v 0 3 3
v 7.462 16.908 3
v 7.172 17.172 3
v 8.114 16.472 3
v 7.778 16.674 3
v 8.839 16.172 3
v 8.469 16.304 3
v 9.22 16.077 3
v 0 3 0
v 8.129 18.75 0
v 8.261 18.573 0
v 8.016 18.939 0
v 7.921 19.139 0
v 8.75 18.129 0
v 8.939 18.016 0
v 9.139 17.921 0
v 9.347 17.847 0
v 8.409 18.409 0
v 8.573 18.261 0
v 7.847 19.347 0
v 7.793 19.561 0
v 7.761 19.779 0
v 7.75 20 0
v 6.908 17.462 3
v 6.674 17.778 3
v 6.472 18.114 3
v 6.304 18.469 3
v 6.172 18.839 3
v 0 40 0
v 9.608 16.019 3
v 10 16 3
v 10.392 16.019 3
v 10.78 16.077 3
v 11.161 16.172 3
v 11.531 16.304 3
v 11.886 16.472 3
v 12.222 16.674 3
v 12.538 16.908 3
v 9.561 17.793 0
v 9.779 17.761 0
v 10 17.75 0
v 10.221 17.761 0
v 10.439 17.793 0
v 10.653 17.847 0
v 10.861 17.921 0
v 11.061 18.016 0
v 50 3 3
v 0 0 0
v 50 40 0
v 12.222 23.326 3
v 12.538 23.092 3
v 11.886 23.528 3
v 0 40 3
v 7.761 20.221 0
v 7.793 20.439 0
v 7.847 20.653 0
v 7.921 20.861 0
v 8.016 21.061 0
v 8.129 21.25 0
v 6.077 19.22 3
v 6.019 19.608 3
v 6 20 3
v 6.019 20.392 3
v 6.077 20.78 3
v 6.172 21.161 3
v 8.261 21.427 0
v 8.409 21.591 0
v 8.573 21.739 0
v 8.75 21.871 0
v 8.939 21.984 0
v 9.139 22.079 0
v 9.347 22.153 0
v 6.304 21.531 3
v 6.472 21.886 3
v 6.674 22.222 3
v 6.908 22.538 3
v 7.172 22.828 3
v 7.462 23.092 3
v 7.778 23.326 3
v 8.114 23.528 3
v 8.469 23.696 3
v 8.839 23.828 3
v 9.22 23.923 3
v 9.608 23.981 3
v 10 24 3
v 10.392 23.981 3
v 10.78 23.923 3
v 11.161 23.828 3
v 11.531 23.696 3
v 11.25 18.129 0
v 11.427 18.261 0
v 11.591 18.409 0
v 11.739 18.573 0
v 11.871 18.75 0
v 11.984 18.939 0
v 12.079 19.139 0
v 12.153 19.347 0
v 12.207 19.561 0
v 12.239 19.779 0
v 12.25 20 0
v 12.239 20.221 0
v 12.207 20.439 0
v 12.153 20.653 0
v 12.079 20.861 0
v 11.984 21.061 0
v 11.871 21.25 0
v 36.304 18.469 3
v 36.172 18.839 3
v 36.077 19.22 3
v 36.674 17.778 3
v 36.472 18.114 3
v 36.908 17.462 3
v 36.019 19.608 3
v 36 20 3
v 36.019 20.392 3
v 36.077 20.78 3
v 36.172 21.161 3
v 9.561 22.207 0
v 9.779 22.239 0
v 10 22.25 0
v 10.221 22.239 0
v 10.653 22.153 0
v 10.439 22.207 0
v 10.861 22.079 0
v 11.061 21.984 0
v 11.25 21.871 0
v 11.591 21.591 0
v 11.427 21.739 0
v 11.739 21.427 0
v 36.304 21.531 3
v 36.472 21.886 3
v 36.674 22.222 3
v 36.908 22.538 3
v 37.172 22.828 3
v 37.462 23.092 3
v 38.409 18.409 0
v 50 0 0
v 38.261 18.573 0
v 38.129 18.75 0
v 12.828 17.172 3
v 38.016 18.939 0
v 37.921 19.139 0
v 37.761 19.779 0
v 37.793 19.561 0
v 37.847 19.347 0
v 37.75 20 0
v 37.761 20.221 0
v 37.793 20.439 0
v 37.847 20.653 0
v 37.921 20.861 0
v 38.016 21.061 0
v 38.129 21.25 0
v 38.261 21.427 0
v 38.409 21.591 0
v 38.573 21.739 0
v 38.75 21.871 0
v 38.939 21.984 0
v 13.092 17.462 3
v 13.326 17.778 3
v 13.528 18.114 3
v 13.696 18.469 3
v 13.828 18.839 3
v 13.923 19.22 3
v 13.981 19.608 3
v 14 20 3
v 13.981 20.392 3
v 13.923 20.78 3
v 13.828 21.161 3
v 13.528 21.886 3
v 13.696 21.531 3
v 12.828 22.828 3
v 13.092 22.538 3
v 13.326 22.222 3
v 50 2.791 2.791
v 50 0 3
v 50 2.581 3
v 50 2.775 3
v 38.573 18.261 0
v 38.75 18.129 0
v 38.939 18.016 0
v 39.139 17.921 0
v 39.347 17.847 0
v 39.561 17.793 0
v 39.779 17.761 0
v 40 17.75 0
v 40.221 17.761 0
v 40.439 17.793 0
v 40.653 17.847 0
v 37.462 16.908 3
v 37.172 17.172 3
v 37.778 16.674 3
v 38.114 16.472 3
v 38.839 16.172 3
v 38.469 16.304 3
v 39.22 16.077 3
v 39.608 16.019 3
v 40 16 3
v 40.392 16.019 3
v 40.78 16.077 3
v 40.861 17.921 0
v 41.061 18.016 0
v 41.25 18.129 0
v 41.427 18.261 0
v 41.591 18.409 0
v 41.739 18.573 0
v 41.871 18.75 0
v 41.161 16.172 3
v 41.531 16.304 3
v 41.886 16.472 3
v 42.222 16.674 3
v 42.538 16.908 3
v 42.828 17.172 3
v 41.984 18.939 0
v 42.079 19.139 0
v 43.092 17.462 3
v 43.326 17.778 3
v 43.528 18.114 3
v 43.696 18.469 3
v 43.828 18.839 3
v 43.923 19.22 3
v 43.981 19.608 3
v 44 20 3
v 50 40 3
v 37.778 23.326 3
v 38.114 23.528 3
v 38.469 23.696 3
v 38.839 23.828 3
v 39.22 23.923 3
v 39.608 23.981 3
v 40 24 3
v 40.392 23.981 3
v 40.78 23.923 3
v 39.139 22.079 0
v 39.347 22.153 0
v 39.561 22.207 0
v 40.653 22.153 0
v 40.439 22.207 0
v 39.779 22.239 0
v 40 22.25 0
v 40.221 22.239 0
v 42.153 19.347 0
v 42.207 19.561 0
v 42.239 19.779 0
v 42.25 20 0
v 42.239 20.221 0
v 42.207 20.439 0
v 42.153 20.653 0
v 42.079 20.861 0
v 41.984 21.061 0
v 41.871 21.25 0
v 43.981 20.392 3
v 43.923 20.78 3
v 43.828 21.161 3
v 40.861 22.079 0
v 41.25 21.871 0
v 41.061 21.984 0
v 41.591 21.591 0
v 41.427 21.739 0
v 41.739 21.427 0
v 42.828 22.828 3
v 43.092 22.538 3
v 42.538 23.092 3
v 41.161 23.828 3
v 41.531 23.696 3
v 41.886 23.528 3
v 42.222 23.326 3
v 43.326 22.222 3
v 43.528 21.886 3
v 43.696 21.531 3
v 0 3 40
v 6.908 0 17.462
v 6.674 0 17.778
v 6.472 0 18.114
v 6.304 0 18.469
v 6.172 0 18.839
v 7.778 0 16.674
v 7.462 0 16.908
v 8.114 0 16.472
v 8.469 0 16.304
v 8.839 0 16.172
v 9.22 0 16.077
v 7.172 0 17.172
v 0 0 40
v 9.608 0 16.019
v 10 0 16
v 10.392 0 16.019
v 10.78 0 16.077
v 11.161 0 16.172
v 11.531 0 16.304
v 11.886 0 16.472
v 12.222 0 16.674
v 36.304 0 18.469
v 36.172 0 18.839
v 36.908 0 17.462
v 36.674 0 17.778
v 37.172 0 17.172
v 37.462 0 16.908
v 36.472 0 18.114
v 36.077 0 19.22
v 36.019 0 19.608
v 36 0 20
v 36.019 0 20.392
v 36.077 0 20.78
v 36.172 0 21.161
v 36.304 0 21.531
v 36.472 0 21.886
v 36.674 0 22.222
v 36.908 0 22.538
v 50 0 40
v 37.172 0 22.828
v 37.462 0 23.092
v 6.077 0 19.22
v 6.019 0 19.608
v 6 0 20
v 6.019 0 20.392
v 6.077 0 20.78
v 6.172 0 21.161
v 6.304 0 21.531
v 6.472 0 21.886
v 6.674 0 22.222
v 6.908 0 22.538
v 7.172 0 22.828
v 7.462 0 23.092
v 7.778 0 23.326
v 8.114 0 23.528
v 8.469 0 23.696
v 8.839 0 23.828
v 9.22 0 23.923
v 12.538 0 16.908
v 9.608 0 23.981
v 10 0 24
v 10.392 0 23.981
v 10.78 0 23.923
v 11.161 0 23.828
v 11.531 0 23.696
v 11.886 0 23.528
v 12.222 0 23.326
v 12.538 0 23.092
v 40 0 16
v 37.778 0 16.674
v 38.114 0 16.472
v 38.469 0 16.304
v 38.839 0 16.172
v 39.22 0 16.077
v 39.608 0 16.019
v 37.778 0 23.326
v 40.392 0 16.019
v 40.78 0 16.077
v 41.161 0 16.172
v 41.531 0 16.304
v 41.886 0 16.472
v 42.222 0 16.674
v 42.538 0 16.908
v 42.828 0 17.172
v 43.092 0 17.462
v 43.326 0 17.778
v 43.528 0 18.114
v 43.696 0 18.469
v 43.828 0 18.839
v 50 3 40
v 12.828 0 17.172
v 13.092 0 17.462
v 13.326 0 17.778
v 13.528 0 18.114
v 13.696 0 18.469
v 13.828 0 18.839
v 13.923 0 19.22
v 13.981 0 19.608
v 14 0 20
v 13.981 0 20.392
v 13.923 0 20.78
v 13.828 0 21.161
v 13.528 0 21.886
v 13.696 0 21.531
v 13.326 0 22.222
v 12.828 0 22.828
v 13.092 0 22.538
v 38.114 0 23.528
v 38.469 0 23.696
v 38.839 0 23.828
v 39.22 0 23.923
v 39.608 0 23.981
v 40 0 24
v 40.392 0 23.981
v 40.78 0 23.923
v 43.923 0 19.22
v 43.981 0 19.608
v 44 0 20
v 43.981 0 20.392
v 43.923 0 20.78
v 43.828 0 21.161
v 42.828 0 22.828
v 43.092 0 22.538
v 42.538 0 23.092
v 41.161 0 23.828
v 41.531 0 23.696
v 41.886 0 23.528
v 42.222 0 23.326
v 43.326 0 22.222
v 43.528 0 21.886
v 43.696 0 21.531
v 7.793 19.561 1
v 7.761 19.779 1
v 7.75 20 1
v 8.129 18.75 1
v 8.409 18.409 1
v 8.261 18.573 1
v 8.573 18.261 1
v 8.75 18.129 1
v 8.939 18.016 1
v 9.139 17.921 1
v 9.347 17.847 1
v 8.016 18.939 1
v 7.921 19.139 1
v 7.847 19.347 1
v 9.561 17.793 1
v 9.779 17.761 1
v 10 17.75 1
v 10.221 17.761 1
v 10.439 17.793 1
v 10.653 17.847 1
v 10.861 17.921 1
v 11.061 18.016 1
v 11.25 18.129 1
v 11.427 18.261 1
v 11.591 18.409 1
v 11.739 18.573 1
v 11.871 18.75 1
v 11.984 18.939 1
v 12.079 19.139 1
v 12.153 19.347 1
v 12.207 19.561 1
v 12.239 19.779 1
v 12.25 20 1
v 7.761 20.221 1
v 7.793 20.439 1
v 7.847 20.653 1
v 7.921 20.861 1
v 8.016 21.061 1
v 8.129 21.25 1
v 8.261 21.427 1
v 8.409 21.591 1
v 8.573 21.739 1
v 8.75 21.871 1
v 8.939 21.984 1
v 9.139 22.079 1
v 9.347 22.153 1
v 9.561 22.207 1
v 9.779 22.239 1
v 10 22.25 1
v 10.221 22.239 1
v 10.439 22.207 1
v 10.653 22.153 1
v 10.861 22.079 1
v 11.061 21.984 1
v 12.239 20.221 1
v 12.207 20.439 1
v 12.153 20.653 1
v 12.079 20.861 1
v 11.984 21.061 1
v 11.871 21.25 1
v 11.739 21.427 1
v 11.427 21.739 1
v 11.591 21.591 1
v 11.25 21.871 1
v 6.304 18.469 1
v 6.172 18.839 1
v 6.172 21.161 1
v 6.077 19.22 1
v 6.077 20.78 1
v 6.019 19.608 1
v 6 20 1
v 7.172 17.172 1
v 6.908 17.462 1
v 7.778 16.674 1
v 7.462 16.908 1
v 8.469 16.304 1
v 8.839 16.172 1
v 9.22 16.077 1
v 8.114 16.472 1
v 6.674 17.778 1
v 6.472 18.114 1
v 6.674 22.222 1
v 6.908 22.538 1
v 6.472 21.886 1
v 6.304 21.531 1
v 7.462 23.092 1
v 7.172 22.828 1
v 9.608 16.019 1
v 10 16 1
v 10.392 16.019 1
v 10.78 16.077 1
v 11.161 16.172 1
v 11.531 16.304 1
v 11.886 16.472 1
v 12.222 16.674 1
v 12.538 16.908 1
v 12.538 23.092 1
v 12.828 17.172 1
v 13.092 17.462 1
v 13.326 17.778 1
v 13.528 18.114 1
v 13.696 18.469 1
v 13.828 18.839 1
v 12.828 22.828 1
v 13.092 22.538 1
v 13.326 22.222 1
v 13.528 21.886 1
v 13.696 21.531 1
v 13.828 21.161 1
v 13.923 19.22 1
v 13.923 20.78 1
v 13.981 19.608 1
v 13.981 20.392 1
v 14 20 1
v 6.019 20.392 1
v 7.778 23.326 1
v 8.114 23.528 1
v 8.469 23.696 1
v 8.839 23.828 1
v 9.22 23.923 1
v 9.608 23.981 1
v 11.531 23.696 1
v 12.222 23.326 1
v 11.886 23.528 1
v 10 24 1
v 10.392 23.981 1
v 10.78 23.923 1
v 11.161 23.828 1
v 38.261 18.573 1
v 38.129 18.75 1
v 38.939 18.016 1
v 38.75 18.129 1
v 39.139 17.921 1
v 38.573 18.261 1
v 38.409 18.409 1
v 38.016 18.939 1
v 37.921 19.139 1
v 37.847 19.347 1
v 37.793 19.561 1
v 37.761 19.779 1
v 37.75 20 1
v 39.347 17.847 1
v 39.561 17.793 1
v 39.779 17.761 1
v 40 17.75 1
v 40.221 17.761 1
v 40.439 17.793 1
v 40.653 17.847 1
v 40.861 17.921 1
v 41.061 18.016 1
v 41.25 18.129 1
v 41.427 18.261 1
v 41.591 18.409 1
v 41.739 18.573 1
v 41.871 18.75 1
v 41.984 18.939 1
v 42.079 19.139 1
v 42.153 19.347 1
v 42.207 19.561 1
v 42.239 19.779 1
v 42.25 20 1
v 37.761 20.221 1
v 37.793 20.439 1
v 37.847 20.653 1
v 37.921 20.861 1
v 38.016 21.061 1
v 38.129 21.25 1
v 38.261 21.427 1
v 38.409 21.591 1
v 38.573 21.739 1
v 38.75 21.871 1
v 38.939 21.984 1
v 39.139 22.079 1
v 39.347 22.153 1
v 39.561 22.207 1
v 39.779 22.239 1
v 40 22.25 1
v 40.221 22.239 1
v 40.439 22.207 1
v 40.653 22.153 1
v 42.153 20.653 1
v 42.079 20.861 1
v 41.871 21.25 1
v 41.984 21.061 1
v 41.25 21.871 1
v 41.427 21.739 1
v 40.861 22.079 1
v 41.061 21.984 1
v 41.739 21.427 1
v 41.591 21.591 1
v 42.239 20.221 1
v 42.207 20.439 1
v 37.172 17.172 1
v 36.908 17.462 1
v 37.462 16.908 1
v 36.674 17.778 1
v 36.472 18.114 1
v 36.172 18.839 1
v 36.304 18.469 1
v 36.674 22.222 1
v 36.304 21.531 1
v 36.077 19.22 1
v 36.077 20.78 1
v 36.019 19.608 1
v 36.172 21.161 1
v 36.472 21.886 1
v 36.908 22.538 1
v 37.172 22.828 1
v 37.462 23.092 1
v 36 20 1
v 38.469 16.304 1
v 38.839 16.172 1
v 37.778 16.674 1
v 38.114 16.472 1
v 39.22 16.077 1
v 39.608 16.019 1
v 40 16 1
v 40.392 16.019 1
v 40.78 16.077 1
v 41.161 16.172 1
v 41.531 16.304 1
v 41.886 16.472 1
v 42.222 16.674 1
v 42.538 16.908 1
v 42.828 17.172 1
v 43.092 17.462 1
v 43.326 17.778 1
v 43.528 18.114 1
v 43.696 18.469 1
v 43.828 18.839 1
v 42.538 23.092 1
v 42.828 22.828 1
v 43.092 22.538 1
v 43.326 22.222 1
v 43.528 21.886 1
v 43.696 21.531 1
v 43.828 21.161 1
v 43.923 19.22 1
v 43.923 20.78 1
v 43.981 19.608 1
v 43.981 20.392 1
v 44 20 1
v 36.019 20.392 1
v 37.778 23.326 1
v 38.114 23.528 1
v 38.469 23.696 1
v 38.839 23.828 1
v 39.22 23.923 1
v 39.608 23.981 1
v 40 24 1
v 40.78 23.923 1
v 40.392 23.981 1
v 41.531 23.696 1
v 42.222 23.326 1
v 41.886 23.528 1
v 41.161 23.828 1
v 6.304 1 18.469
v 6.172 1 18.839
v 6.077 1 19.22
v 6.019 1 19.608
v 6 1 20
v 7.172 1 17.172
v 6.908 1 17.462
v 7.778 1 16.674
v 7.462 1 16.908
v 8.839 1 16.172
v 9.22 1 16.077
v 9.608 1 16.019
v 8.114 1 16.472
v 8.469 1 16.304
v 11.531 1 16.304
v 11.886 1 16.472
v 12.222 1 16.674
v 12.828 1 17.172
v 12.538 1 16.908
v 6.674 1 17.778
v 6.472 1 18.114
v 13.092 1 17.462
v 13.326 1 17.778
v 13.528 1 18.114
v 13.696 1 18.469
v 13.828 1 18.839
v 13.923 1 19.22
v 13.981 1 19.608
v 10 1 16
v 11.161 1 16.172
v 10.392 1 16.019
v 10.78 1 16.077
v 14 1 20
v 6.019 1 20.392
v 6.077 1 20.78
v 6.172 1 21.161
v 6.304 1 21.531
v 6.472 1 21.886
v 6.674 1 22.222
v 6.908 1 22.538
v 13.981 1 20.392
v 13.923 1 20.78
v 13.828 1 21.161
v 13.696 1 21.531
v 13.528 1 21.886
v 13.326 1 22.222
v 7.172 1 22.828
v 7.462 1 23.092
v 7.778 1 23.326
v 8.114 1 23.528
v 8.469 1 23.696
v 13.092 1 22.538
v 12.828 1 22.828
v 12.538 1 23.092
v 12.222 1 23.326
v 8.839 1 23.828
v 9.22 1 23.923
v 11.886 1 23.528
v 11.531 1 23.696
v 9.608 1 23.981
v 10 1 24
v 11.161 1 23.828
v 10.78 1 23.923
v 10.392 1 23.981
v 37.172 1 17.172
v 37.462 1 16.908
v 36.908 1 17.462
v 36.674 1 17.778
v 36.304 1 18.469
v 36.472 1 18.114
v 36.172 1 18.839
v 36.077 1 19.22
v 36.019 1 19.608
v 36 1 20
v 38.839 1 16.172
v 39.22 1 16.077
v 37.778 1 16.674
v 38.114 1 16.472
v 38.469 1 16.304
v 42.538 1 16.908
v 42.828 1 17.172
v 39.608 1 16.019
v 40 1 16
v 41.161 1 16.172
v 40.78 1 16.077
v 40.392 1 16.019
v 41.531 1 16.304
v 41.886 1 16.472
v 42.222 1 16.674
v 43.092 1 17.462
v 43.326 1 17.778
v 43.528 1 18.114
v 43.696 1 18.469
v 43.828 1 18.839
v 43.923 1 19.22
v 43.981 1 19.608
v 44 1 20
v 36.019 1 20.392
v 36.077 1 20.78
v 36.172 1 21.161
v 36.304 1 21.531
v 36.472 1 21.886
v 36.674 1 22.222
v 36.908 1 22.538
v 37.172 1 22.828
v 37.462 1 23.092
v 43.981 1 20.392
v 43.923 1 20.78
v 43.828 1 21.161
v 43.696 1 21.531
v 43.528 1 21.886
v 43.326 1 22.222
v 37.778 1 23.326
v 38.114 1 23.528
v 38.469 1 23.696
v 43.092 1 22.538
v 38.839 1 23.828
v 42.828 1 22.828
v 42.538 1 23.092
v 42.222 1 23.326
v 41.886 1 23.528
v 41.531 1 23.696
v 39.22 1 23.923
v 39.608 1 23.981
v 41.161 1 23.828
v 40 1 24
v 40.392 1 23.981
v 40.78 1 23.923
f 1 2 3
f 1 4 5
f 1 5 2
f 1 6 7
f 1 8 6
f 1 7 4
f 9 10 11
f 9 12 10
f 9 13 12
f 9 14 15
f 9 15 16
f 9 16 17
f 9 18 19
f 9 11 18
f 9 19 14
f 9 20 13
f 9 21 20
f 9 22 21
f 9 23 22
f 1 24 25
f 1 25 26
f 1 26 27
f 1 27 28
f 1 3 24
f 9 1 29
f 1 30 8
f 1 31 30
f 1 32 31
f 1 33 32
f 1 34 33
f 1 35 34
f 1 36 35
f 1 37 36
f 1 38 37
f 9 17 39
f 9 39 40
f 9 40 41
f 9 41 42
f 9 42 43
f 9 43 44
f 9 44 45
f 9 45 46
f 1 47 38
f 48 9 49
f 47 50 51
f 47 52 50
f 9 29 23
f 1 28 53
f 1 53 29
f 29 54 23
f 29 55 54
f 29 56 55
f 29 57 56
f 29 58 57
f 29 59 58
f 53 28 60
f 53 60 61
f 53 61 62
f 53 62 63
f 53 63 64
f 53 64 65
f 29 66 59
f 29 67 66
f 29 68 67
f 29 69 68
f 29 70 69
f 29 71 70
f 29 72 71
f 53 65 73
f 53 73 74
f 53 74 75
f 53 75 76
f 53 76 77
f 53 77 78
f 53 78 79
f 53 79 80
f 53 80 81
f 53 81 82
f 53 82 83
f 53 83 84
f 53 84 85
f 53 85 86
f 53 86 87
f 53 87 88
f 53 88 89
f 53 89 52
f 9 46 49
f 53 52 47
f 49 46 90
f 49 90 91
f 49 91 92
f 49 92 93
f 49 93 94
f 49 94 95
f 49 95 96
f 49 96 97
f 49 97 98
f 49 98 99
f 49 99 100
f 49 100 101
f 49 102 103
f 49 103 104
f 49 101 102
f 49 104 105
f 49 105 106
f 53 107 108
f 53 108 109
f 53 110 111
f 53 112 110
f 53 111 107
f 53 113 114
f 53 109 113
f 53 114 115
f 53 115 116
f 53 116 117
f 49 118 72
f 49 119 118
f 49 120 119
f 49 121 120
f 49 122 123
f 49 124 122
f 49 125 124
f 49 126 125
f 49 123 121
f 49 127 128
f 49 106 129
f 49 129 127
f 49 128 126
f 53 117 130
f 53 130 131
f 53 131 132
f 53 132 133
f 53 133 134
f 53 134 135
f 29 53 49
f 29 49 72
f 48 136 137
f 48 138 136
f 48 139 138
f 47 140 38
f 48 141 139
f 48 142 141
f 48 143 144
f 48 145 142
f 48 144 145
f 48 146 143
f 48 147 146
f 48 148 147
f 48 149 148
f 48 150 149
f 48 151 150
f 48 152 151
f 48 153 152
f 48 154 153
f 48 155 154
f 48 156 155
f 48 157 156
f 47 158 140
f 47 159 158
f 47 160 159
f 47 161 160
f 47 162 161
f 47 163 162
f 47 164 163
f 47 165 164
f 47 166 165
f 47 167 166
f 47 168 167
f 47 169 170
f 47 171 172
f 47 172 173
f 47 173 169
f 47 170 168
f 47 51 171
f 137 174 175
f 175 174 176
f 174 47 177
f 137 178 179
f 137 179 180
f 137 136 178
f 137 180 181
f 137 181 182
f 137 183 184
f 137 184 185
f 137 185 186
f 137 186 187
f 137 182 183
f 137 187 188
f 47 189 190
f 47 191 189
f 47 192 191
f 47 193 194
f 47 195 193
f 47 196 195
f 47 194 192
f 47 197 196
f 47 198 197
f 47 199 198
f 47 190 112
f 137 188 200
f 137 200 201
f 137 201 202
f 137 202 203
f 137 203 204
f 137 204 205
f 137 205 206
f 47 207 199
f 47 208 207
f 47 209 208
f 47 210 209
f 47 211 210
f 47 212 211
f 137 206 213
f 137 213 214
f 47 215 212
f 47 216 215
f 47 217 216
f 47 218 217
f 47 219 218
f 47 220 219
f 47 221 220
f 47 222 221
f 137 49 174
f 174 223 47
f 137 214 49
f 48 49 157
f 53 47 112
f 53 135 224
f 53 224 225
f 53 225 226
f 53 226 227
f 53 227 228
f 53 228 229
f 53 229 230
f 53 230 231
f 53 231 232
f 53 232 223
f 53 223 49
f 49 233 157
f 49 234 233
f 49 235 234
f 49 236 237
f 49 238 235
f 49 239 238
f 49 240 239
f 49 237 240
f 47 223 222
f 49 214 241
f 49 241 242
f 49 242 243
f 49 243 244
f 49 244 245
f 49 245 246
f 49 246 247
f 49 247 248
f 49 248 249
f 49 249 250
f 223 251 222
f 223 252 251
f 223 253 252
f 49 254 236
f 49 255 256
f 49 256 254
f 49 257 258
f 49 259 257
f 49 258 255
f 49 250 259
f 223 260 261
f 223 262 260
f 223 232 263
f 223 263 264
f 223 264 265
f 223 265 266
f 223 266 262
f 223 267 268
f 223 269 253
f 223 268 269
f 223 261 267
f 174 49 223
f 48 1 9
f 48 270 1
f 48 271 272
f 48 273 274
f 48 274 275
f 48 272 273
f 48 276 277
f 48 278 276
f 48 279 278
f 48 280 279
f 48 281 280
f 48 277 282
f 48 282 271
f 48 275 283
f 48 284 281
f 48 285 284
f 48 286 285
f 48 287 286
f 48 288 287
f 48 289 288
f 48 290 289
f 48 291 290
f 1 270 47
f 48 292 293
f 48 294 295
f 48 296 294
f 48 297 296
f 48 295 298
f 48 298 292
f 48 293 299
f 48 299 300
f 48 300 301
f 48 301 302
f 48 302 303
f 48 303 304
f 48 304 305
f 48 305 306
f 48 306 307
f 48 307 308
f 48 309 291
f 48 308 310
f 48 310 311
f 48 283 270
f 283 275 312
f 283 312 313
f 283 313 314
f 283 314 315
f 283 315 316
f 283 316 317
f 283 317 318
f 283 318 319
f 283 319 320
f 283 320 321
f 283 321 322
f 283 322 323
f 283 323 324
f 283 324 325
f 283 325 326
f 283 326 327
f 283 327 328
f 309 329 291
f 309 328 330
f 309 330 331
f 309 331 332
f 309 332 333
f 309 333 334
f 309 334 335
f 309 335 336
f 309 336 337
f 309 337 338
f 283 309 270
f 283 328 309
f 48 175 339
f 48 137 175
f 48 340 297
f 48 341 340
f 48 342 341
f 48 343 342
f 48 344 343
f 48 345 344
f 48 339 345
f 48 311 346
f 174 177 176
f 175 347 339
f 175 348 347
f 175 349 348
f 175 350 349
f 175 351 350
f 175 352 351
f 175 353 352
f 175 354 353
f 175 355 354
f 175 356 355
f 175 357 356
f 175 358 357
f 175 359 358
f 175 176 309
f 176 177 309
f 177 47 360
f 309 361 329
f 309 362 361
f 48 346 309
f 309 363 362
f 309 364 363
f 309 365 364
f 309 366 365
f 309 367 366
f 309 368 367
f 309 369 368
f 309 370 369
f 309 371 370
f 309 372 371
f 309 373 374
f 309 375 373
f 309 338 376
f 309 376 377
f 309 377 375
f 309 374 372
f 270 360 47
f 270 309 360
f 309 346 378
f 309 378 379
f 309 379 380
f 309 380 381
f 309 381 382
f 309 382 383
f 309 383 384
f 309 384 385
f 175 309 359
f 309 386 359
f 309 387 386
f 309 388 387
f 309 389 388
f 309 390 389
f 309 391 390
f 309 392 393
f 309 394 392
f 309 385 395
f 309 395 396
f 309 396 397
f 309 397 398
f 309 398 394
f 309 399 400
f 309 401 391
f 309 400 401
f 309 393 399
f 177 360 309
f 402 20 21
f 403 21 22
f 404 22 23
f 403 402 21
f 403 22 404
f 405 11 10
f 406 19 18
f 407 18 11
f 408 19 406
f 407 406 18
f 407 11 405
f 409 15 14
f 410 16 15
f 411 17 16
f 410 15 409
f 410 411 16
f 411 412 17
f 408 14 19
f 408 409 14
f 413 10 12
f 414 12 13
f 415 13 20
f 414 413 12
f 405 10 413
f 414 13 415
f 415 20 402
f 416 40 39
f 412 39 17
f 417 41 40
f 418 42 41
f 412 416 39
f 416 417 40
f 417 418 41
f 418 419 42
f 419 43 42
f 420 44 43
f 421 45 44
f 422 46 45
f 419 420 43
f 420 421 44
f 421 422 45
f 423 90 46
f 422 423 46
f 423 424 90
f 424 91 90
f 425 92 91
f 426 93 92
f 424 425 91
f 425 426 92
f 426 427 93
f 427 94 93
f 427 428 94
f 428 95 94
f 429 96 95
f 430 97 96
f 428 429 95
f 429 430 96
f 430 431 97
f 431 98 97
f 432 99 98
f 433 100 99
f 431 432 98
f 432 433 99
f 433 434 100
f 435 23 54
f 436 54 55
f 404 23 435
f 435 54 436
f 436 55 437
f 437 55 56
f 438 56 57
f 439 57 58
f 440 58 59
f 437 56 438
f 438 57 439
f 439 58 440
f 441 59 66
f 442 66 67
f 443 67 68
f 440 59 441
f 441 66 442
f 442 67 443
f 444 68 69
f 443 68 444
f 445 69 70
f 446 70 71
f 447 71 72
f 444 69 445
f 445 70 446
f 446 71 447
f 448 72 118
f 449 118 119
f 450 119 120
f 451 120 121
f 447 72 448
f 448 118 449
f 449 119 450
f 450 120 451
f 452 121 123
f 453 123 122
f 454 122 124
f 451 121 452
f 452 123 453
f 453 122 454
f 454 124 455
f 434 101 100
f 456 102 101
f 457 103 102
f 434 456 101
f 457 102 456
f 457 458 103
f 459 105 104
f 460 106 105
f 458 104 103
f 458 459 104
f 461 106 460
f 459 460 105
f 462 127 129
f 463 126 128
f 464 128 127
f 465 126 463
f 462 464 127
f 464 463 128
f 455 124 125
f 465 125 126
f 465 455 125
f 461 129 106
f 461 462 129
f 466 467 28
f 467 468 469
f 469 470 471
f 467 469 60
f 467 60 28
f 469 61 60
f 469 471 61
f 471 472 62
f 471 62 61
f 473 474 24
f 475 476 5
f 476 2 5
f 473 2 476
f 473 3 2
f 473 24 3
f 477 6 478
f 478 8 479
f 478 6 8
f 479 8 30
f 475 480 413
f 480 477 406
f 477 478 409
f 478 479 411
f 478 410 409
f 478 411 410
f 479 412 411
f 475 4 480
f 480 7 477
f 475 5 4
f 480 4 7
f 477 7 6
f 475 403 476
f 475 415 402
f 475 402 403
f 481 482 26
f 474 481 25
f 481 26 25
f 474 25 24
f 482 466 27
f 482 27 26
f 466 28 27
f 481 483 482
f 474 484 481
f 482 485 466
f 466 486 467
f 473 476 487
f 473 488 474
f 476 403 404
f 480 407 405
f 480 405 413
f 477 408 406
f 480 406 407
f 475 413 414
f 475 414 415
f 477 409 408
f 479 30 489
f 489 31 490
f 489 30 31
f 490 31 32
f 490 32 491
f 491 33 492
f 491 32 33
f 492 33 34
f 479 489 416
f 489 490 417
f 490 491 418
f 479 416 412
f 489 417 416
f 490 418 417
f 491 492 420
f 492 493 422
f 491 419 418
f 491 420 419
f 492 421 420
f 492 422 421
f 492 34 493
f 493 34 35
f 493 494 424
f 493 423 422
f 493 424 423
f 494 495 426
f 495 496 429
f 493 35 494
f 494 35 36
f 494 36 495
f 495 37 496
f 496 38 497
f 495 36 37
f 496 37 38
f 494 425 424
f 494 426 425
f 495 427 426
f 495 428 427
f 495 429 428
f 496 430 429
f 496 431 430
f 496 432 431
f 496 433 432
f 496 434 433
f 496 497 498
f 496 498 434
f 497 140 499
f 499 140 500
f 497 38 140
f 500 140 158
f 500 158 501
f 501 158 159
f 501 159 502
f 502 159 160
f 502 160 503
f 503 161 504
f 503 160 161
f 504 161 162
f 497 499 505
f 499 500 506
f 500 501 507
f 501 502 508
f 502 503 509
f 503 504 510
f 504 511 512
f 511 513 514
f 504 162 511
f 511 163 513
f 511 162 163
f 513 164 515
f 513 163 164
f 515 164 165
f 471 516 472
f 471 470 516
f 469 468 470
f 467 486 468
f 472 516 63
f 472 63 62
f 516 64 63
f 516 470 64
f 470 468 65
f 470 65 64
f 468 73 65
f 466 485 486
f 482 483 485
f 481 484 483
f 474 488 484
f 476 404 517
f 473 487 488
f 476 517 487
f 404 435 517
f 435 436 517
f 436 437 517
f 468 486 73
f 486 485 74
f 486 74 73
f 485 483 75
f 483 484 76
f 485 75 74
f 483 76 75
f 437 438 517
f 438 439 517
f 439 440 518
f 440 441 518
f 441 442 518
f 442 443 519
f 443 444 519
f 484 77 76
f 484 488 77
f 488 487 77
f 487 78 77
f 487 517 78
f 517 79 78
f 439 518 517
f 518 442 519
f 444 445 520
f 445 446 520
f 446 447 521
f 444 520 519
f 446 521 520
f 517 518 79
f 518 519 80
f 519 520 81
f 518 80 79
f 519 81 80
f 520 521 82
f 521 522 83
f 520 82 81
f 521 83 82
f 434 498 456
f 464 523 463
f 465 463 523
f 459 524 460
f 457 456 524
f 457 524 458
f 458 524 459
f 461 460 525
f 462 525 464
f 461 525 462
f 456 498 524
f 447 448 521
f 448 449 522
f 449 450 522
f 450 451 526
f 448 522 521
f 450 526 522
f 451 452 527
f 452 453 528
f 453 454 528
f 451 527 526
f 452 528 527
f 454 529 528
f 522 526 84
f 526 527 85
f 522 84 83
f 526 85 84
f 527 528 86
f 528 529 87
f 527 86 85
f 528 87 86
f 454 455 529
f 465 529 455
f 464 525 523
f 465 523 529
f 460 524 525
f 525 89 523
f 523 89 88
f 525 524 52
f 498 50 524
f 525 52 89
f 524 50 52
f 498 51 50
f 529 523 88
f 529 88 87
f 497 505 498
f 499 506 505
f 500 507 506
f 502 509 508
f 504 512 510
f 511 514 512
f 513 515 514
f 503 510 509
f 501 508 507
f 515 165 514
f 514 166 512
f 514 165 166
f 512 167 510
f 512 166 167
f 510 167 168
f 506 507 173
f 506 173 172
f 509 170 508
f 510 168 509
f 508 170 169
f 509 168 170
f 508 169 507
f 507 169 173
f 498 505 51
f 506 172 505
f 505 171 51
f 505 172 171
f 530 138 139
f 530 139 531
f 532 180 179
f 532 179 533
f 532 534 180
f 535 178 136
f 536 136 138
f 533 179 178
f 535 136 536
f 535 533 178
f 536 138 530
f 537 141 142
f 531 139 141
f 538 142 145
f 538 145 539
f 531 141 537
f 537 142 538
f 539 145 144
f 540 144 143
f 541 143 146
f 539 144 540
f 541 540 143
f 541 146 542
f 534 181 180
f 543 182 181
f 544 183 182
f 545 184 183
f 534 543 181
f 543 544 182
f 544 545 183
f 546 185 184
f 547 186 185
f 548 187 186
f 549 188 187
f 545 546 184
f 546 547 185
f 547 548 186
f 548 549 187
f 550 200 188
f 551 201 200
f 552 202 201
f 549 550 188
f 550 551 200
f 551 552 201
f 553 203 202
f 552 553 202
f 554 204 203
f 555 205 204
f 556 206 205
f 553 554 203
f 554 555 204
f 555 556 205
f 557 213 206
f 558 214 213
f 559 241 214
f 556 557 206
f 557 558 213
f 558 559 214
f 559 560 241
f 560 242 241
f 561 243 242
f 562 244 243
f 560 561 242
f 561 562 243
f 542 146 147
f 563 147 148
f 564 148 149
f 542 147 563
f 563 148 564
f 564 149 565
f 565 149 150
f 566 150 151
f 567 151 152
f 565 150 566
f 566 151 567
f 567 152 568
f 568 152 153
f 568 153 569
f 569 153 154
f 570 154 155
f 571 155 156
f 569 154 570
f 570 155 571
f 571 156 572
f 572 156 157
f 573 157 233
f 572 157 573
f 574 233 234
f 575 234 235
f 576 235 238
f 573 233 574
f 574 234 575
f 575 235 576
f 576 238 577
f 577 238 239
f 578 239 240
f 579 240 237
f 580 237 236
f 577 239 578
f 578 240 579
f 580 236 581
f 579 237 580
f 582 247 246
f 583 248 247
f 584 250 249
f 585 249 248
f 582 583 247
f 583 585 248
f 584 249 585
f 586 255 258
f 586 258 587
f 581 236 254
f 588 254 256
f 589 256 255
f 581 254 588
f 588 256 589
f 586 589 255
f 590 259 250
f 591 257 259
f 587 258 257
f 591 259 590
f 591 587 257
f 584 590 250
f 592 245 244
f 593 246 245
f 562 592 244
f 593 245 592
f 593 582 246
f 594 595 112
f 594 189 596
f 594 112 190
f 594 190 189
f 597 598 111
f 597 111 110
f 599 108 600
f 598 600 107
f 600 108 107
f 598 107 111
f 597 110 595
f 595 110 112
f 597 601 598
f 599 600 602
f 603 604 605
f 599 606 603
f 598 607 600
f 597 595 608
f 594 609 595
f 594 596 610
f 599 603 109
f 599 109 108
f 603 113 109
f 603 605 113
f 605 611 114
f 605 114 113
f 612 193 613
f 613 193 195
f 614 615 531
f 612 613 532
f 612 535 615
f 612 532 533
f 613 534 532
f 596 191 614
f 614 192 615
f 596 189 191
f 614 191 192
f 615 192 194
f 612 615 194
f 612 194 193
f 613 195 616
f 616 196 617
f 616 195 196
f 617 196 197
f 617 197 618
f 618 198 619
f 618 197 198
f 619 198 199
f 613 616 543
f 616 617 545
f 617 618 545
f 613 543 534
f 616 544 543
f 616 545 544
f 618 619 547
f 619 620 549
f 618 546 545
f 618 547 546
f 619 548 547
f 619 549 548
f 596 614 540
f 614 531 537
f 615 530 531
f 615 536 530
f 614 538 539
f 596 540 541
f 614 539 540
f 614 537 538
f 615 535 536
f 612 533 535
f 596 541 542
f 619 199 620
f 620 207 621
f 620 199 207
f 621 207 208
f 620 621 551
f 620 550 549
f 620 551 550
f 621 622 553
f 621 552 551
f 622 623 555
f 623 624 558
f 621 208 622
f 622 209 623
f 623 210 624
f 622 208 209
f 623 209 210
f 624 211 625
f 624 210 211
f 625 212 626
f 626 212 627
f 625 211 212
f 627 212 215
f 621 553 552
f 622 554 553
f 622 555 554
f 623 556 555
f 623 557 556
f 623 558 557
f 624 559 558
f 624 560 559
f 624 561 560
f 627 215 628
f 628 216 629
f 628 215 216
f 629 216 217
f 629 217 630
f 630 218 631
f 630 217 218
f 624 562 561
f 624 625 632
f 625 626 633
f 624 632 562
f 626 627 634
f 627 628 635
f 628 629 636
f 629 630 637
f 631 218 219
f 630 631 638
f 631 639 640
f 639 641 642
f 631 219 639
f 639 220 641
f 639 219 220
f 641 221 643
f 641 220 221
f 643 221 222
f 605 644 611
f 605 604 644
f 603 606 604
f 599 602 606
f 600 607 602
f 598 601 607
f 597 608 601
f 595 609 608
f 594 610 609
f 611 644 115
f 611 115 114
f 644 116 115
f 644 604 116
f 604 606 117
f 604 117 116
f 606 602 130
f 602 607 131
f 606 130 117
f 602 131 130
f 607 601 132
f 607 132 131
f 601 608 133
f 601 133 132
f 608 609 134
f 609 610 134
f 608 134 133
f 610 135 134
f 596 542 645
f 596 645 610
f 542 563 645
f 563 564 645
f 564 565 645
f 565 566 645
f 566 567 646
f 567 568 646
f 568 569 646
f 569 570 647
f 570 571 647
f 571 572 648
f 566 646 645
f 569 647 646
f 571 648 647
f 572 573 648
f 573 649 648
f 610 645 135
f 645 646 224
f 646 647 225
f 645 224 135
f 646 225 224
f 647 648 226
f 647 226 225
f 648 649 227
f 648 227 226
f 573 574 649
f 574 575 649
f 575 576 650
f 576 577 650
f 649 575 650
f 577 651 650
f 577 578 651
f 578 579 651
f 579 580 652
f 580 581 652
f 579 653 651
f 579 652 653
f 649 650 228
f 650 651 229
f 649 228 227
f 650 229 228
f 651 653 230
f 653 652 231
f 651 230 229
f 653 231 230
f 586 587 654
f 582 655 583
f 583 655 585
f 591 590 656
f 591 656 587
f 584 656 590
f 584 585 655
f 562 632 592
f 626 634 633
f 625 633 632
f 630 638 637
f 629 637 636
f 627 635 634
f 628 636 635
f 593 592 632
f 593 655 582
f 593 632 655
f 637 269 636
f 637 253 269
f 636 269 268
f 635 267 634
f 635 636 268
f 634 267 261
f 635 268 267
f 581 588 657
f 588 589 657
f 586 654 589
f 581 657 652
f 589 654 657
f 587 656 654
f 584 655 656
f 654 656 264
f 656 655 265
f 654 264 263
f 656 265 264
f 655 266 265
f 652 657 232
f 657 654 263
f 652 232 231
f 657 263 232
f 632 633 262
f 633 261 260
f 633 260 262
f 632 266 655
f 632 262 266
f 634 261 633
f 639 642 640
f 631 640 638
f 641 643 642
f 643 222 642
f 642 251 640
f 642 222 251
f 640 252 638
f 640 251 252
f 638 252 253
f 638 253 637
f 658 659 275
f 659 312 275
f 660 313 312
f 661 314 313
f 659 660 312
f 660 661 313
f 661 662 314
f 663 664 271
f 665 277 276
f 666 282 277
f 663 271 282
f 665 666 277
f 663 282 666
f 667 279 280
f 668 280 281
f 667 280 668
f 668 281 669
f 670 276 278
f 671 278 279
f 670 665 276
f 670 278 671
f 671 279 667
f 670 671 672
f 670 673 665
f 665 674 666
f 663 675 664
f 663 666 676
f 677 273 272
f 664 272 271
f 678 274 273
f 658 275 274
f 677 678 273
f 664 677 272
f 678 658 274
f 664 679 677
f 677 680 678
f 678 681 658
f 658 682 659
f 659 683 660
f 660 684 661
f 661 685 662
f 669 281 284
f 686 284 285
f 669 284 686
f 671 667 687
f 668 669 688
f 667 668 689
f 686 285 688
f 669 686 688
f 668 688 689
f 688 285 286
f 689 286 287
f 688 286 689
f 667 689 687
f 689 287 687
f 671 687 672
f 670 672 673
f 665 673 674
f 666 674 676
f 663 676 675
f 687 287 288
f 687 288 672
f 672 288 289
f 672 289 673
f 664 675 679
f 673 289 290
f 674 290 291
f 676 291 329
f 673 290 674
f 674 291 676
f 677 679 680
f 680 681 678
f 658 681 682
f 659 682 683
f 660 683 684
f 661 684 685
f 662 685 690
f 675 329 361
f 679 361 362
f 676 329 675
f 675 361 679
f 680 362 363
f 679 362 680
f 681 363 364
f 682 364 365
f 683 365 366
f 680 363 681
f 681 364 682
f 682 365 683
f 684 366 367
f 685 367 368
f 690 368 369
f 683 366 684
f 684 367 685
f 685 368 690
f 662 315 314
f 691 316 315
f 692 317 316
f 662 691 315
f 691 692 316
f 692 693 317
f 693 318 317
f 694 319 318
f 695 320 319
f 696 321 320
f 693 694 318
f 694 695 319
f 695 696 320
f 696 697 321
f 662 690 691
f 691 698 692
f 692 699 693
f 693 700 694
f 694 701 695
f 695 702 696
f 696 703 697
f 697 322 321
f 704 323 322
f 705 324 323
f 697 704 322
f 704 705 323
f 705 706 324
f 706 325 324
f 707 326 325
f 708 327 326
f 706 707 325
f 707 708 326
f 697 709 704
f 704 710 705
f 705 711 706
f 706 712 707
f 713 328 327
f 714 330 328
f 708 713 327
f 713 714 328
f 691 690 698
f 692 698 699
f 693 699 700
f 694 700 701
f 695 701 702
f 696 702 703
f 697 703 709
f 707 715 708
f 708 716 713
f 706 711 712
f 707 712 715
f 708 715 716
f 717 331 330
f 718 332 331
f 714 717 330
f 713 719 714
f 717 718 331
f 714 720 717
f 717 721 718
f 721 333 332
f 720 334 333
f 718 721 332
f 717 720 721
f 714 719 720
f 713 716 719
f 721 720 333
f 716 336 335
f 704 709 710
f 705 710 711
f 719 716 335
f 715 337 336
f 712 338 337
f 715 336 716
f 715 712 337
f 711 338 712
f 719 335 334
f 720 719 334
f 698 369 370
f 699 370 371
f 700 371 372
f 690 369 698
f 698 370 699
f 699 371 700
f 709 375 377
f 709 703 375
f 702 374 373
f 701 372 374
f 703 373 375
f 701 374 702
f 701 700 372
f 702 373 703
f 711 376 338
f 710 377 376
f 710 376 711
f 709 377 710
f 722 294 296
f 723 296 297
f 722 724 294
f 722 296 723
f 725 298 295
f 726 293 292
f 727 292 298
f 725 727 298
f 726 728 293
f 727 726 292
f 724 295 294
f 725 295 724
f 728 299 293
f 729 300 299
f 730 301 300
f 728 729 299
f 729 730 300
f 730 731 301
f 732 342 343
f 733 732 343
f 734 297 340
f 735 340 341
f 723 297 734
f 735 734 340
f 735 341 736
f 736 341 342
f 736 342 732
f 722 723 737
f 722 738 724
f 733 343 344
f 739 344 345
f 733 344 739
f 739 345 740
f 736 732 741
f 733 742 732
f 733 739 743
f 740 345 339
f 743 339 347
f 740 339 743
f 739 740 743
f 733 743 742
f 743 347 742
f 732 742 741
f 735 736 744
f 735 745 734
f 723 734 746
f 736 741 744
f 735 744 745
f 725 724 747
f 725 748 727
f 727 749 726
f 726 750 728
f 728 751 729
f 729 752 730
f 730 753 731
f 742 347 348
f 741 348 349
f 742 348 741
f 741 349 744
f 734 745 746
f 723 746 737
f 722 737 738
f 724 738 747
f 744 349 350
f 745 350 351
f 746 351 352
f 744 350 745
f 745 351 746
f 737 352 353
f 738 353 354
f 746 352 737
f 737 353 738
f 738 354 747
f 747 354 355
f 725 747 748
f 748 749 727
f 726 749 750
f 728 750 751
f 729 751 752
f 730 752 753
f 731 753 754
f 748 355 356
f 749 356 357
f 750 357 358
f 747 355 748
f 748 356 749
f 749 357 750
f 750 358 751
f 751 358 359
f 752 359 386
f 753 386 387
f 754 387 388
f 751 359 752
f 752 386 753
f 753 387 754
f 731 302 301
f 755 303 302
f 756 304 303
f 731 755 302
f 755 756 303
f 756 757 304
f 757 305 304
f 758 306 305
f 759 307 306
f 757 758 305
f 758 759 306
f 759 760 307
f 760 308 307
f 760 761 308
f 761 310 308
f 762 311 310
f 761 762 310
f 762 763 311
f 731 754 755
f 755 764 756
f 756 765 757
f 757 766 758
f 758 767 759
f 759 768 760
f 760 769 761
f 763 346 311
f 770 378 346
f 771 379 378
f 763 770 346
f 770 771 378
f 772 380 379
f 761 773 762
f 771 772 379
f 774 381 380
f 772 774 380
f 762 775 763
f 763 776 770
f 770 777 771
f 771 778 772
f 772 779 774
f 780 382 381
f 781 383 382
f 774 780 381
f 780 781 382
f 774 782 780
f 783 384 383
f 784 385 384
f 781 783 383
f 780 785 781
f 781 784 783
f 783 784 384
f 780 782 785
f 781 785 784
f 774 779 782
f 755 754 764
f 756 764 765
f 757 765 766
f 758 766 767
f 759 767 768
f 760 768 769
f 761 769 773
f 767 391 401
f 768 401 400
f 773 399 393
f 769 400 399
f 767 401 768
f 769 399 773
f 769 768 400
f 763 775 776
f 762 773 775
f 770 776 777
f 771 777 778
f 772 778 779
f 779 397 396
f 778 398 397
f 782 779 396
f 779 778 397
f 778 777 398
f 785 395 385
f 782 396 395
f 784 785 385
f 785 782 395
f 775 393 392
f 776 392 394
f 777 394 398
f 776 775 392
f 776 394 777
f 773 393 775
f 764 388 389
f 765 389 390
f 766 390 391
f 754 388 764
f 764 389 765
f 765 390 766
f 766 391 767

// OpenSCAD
$fn = 64;

width = 50;
depth = 40;
height = 40;
thickness = 3;

hole_d = 4.5;
csk_d = 8;
csk_depth = 2;

difference() {
    union() {
        // Horizontal flange
        cube([width, depth, thickness]);
        // Vertical flange
        cube([width, thickness, height]);
    }

    // Holes on horizontal flange (countersink on top)
    for (x = [10, width-10]) {
        translate([x, depth/2, 0])
            cylinder(h = thickness, d = hole_d);
        translate([x, depth/2, thickness - csk_depth])
            cylinder(h = csk_depth, d = csk_d);
    }

    // Holes on vertical flange (countersink on outer side)
    for (x = [10, width-10]) {
        translate([x, 0, height/2])
            rotate([90, 0, 0])
                cylinder(h = thickness, d = hole_d);
        translate([x, thickness - csk_depth, height/2])
            rotate([90, 0, 0])
                cylinder(h = csk_depth, d = csk_d);
    }
}
